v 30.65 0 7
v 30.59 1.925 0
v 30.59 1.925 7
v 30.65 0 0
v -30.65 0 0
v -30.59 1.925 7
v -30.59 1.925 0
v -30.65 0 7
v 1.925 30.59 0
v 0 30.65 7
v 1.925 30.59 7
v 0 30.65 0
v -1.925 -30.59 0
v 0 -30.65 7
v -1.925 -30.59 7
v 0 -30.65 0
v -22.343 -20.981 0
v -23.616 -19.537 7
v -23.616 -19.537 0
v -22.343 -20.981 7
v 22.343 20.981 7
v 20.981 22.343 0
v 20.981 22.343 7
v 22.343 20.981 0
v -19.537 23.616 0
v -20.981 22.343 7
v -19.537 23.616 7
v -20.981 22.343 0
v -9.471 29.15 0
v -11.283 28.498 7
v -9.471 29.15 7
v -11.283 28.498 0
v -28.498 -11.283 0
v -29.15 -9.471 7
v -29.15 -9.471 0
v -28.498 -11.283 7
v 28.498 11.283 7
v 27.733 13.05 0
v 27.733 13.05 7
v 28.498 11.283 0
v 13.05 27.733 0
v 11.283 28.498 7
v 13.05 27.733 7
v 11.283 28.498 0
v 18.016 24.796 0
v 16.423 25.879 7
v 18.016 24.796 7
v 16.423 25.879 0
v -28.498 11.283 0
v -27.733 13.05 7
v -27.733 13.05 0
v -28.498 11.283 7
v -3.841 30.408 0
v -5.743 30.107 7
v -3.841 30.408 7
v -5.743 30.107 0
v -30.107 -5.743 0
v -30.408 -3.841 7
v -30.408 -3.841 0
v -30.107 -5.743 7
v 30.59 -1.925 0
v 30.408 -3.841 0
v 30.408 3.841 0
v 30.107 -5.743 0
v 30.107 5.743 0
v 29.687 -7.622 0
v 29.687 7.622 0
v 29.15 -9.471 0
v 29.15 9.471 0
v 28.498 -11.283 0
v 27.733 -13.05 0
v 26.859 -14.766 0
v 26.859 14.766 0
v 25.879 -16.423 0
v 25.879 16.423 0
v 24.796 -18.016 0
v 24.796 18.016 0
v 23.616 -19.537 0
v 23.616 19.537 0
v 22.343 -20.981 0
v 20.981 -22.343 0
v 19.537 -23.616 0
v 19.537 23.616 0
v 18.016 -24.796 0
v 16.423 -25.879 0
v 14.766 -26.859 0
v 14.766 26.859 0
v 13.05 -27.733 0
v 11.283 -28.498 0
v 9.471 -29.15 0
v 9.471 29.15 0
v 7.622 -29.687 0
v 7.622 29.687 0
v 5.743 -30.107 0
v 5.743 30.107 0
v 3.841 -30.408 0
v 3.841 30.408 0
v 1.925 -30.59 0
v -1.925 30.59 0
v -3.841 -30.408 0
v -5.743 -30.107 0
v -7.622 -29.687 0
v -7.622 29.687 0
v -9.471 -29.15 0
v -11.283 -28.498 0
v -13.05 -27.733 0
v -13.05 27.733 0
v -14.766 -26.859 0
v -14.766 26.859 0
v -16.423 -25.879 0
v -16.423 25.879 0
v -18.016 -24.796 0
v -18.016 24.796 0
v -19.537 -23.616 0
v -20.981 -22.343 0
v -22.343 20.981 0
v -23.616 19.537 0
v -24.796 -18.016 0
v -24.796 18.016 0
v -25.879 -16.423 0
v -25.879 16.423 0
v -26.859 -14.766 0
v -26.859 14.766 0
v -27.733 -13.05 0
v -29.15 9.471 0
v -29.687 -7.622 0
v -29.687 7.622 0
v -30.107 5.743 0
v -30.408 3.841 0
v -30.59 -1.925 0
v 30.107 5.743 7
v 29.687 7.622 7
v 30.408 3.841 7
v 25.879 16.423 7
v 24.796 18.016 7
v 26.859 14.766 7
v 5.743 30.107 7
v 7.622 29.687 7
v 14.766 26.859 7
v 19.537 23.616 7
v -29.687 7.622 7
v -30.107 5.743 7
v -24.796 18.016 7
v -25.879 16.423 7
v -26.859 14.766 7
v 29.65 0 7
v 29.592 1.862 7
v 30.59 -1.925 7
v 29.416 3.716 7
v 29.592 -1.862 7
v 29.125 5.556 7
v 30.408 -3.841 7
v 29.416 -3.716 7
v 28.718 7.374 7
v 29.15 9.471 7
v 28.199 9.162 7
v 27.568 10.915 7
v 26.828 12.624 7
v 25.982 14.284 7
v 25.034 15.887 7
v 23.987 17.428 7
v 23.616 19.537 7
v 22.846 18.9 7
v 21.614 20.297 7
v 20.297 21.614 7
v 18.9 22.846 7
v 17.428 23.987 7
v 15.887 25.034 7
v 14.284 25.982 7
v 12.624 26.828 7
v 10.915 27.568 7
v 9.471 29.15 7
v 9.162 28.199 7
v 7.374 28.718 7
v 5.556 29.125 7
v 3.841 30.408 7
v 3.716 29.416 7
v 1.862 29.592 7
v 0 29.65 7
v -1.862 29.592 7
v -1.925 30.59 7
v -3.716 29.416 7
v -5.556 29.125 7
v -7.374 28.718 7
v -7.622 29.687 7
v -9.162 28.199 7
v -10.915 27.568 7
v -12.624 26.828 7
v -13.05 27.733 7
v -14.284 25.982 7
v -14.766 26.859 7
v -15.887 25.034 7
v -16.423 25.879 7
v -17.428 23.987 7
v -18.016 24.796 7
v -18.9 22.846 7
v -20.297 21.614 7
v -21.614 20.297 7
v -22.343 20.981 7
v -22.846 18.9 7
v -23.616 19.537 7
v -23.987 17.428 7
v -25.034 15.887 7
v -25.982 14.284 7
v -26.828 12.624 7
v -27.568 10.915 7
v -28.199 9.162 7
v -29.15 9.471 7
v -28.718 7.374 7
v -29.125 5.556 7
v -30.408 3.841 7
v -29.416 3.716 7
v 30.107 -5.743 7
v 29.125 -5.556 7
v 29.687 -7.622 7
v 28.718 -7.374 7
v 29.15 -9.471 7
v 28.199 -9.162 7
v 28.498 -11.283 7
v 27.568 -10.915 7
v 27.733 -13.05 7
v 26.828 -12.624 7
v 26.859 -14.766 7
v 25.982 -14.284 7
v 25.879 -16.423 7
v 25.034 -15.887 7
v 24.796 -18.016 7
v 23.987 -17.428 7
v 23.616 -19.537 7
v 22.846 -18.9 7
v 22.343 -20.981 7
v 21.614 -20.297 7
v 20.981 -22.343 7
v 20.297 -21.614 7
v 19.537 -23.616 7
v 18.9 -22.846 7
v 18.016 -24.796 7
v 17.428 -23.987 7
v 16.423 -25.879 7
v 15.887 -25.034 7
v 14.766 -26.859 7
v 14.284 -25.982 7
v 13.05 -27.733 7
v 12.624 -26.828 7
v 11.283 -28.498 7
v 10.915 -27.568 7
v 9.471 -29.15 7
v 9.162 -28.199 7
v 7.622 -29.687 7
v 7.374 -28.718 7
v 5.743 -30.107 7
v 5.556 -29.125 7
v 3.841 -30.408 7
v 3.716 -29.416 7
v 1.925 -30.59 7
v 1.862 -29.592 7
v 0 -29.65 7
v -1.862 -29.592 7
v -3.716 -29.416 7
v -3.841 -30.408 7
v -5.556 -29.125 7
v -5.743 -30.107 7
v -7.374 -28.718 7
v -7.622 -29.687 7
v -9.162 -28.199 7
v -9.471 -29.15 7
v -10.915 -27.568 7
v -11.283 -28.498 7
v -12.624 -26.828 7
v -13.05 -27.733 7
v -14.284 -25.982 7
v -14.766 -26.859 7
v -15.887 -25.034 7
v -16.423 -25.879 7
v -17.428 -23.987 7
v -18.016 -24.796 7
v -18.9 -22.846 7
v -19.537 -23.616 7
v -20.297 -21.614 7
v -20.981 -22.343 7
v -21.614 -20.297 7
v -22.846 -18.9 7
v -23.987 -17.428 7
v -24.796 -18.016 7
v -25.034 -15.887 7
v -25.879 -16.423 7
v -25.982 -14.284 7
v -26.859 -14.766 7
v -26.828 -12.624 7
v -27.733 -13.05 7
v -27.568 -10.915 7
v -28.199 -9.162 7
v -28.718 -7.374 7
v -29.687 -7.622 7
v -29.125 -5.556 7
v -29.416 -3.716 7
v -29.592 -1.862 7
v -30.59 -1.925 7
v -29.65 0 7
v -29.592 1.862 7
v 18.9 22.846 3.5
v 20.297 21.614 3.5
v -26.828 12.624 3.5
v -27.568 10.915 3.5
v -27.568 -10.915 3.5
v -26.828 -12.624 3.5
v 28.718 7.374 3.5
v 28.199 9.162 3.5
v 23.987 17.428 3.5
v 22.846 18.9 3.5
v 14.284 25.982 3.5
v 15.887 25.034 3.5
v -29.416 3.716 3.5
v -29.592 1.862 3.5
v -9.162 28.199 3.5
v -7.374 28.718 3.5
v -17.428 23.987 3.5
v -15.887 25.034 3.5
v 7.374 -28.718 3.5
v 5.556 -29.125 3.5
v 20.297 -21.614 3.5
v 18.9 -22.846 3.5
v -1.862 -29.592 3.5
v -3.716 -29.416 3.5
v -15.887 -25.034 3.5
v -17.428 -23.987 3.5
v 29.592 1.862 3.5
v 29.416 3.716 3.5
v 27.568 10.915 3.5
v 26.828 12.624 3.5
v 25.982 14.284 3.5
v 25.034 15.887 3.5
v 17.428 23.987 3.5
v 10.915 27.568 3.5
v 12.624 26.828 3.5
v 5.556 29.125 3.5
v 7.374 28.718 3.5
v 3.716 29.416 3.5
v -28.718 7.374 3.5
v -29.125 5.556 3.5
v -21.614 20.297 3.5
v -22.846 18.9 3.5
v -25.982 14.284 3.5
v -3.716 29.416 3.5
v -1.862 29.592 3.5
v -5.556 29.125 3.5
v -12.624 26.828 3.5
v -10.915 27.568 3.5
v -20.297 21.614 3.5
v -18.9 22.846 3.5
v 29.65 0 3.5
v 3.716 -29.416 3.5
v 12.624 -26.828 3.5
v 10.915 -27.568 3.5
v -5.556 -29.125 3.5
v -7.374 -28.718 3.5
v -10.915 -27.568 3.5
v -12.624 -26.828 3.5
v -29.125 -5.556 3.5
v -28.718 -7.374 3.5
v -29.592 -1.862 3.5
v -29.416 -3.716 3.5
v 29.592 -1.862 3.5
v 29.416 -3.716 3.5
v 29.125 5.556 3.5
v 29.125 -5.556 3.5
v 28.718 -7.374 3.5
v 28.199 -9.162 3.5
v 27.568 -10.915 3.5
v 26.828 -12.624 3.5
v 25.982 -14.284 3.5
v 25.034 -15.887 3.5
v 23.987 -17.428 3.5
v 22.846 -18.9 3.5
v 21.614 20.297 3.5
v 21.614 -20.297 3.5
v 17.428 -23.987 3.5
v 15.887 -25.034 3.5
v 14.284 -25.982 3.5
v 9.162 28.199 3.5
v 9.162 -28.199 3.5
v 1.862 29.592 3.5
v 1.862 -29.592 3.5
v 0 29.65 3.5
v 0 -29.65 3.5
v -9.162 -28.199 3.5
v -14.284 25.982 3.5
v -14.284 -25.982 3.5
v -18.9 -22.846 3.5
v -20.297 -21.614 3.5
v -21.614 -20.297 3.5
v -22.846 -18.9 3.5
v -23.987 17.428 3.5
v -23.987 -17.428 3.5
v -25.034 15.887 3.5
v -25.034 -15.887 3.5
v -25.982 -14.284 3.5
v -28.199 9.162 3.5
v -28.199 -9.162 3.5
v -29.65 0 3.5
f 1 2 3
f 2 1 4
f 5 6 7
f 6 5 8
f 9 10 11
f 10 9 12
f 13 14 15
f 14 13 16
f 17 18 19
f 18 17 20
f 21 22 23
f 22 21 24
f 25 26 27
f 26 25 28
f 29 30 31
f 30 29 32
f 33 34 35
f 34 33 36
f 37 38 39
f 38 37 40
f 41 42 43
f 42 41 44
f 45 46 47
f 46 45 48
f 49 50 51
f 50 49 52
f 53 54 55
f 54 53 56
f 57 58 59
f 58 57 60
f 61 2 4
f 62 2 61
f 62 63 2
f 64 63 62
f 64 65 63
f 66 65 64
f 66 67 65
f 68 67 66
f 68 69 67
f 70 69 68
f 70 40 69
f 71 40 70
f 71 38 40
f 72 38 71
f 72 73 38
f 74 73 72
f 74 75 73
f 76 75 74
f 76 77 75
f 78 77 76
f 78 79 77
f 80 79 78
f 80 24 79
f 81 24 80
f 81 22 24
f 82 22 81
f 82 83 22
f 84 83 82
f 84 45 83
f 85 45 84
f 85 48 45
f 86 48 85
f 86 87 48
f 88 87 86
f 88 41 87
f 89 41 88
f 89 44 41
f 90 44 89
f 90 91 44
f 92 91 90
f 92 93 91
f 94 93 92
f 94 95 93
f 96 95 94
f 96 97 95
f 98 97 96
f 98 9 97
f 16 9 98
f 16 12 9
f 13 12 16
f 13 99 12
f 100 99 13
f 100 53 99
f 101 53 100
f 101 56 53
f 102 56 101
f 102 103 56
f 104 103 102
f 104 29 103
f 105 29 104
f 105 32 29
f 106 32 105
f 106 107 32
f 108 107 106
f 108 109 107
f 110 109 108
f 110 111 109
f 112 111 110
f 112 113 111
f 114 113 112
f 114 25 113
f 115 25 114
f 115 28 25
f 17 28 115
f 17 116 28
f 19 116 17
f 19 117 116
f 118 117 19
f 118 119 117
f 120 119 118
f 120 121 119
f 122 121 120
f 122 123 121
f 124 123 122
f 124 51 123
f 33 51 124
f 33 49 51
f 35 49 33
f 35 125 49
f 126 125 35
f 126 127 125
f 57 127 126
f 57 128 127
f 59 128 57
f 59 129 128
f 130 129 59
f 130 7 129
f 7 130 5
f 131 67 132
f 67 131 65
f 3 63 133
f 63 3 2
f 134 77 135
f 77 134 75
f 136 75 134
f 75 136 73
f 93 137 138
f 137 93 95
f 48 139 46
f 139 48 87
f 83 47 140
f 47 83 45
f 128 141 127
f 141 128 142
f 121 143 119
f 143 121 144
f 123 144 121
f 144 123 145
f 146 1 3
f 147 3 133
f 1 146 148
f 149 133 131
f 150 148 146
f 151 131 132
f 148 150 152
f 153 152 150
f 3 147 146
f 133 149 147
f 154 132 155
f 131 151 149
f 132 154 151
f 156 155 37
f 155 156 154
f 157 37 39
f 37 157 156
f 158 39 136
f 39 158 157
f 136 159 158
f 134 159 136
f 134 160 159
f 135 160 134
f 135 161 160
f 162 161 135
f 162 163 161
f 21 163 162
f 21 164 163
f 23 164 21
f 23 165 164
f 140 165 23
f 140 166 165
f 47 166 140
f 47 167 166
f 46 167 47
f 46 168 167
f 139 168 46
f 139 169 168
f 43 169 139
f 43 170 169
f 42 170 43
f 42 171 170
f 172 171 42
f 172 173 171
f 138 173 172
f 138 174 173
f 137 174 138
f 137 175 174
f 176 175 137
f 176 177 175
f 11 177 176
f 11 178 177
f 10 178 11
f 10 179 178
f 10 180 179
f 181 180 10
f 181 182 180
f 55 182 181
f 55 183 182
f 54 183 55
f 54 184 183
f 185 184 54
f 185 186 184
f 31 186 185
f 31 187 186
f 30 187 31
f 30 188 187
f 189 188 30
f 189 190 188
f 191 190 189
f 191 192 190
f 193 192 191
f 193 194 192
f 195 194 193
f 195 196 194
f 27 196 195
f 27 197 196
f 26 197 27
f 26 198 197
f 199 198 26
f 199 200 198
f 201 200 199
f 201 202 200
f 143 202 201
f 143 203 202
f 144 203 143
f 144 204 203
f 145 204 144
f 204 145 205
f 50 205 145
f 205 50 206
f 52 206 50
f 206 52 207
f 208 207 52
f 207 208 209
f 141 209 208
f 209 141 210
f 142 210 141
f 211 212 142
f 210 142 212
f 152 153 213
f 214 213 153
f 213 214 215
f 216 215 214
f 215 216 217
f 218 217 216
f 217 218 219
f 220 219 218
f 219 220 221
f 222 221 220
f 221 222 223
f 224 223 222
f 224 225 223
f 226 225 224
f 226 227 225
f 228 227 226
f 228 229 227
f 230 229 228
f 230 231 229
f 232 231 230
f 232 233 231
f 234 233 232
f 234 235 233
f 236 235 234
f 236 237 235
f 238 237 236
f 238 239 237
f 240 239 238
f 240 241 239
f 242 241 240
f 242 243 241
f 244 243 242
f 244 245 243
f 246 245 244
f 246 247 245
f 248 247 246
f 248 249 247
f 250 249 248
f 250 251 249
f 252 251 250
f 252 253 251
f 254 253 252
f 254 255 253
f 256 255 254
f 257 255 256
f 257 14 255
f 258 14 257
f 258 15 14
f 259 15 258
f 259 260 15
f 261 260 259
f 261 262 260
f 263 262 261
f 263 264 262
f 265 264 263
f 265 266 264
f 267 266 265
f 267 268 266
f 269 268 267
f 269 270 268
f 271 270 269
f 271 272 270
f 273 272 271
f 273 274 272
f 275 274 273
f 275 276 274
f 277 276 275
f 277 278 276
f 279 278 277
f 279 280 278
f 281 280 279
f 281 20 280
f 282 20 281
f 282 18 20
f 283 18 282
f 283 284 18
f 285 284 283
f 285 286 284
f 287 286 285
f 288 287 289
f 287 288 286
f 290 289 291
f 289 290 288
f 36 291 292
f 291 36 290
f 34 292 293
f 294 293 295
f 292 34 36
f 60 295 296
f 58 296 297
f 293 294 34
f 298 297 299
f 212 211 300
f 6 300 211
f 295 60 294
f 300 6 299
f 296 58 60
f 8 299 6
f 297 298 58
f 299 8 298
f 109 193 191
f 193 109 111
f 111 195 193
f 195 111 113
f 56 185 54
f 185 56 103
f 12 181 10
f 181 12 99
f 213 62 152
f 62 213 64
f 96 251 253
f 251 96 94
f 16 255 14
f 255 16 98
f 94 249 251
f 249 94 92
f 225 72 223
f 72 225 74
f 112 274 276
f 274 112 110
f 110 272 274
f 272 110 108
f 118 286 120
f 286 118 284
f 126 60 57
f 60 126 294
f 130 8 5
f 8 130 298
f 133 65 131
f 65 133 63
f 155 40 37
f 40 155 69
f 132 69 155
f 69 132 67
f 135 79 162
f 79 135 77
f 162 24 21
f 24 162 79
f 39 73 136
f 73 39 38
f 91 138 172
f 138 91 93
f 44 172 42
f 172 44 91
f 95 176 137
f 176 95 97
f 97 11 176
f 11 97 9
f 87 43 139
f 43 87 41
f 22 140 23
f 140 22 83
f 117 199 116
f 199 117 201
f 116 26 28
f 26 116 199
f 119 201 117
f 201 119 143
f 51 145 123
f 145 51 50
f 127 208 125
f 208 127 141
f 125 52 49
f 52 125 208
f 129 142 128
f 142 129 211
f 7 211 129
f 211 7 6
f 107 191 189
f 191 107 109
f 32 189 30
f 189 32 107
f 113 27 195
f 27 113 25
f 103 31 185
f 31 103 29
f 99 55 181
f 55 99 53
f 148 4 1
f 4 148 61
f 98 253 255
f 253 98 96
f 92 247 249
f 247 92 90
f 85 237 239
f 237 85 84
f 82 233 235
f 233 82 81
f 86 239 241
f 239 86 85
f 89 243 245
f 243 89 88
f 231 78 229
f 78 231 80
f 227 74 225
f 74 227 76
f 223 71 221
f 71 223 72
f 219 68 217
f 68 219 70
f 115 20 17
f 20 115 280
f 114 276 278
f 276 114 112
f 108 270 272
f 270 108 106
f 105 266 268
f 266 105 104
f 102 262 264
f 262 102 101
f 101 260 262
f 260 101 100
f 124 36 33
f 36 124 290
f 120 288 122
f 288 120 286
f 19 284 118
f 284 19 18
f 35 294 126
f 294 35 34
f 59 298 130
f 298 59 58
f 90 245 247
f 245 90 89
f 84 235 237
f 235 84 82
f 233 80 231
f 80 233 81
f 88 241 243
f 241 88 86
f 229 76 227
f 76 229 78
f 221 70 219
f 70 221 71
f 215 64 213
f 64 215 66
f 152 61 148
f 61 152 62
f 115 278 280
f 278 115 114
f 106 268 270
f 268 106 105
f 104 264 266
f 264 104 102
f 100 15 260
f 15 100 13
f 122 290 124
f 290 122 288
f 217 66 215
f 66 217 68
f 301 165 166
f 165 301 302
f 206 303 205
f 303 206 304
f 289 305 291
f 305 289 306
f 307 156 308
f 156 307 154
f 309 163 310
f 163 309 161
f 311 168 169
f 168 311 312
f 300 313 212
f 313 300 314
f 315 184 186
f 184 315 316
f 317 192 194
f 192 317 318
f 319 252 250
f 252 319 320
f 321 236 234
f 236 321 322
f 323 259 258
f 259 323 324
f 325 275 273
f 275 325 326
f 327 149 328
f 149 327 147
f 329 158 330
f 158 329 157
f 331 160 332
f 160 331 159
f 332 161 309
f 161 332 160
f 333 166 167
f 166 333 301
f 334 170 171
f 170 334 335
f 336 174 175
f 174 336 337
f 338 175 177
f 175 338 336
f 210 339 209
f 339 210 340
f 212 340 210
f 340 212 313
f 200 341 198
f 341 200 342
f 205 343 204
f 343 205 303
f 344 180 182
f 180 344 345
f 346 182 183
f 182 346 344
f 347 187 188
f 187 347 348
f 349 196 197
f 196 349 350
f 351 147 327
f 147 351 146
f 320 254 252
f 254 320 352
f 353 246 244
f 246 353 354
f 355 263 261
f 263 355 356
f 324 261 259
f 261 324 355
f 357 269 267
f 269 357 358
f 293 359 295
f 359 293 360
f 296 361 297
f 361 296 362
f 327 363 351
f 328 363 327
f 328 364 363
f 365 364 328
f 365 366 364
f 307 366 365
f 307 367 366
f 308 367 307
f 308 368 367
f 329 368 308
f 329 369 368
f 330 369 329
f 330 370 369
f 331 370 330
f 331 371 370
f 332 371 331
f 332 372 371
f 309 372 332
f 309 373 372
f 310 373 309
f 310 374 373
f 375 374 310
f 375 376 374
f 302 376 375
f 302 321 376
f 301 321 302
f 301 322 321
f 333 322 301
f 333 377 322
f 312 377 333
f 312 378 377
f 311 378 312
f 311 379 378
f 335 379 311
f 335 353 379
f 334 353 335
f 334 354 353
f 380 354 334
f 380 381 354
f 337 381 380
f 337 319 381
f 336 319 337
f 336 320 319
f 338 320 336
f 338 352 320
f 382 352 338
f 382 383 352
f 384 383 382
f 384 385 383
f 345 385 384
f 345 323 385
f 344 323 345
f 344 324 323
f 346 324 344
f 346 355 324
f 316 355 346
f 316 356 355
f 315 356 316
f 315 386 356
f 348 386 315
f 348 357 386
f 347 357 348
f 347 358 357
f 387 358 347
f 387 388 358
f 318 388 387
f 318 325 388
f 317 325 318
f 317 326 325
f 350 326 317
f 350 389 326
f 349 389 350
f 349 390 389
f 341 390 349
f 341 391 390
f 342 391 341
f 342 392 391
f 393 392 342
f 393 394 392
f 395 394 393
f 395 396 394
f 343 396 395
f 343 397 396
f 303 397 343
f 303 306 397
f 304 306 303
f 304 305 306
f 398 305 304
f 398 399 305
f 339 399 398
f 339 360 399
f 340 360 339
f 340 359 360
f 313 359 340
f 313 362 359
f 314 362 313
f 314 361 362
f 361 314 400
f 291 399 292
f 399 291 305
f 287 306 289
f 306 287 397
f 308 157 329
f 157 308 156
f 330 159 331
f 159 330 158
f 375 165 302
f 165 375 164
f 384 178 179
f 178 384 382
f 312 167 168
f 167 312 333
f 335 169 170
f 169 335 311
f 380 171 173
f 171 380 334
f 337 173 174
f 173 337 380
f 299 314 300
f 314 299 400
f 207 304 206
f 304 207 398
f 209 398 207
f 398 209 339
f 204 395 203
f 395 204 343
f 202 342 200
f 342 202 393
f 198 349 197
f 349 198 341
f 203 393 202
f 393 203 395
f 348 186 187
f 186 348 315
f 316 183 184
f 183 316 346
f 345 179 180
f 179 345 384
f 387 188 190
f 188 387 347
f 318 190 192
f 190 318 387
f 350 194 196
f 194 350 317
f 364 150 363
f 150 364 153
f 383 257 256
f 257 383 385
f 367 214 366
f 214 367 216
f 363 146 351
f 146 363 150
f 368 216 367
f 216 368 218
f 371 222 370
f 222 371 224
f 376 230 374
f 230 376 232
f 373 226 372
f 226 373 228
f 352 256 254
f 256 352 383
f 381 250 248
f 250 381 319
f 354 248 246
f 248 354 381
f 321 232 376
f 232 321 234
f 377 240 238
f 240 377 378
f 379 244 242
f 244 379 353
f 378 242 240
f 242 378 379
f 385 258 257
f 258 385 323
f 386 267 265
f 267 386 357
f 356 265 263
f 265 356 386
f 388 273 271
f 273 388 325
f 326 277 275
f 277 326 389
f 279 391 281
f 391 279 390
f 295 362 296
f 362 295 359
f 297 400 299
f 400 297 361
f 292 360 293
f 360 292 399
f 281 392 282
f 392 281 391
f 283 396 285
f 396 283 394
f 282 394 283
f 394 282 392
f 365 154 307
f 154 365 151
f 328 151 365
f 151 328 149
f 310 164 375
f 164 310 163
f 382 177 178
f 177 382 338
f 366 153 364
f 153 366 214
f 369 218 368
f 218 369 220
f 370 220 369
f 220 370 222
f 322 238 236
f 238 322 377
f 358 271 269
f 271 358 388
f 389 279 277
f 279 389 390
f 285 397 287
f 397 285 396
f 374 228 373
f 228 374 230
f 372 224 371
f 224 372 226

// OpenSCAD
d = 59.3;
h = 3.5;
$fn = 100;

difference() {
    cylinder(d = d + 2, h = 7);
    
    translate([0, 0, 3.5])
    cylinder(d = d, h = 10);
}
